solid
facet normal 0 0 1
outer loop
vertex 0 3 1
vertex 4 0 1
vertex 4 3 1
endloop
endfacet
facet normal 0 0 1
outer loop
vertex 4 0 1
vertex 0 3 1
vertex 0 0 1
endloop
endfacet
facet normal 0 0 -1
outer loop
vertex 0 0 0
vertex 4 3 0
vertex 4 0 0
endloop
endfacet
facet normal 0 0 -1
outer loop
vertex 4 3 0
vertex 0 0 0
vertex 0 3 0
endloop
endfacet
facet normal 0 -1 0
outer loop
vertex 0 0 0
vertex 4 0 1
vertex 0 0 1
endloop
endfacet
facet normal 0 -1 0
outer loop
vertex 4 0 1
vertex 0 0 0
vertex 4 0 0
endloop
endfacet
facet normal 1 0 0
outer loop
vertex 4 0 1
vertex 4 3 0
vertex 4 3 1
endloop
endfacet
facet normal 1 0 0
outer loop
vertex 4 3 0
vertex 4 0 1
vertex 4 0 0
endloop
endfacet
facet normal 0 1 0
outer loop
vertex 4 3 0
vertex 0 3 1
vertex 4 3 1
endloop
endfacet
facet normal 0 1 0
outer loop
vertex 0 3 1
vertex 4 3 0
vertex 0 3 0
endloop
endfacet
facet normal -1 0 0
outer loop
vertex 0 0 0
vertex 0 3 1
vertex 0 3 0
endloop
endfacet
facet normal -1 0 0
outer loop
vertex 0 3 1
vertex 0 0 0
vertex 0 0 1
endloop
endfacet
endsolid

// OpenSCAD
/* Warning, this is a very basic generator with a lot of approximation 
input data : [VDFN, 5XC, 4x3x1.0mm, 10, , A, C04-25461A]
generated by com.zoubworld.electronics.cad.model3d.Basic
Date : Sun Feb 15 10:50:49 CET 2026
*/

//body
color("black")
translate([0,0,0])
cube([4.0,3.0,1.0], center=false);
